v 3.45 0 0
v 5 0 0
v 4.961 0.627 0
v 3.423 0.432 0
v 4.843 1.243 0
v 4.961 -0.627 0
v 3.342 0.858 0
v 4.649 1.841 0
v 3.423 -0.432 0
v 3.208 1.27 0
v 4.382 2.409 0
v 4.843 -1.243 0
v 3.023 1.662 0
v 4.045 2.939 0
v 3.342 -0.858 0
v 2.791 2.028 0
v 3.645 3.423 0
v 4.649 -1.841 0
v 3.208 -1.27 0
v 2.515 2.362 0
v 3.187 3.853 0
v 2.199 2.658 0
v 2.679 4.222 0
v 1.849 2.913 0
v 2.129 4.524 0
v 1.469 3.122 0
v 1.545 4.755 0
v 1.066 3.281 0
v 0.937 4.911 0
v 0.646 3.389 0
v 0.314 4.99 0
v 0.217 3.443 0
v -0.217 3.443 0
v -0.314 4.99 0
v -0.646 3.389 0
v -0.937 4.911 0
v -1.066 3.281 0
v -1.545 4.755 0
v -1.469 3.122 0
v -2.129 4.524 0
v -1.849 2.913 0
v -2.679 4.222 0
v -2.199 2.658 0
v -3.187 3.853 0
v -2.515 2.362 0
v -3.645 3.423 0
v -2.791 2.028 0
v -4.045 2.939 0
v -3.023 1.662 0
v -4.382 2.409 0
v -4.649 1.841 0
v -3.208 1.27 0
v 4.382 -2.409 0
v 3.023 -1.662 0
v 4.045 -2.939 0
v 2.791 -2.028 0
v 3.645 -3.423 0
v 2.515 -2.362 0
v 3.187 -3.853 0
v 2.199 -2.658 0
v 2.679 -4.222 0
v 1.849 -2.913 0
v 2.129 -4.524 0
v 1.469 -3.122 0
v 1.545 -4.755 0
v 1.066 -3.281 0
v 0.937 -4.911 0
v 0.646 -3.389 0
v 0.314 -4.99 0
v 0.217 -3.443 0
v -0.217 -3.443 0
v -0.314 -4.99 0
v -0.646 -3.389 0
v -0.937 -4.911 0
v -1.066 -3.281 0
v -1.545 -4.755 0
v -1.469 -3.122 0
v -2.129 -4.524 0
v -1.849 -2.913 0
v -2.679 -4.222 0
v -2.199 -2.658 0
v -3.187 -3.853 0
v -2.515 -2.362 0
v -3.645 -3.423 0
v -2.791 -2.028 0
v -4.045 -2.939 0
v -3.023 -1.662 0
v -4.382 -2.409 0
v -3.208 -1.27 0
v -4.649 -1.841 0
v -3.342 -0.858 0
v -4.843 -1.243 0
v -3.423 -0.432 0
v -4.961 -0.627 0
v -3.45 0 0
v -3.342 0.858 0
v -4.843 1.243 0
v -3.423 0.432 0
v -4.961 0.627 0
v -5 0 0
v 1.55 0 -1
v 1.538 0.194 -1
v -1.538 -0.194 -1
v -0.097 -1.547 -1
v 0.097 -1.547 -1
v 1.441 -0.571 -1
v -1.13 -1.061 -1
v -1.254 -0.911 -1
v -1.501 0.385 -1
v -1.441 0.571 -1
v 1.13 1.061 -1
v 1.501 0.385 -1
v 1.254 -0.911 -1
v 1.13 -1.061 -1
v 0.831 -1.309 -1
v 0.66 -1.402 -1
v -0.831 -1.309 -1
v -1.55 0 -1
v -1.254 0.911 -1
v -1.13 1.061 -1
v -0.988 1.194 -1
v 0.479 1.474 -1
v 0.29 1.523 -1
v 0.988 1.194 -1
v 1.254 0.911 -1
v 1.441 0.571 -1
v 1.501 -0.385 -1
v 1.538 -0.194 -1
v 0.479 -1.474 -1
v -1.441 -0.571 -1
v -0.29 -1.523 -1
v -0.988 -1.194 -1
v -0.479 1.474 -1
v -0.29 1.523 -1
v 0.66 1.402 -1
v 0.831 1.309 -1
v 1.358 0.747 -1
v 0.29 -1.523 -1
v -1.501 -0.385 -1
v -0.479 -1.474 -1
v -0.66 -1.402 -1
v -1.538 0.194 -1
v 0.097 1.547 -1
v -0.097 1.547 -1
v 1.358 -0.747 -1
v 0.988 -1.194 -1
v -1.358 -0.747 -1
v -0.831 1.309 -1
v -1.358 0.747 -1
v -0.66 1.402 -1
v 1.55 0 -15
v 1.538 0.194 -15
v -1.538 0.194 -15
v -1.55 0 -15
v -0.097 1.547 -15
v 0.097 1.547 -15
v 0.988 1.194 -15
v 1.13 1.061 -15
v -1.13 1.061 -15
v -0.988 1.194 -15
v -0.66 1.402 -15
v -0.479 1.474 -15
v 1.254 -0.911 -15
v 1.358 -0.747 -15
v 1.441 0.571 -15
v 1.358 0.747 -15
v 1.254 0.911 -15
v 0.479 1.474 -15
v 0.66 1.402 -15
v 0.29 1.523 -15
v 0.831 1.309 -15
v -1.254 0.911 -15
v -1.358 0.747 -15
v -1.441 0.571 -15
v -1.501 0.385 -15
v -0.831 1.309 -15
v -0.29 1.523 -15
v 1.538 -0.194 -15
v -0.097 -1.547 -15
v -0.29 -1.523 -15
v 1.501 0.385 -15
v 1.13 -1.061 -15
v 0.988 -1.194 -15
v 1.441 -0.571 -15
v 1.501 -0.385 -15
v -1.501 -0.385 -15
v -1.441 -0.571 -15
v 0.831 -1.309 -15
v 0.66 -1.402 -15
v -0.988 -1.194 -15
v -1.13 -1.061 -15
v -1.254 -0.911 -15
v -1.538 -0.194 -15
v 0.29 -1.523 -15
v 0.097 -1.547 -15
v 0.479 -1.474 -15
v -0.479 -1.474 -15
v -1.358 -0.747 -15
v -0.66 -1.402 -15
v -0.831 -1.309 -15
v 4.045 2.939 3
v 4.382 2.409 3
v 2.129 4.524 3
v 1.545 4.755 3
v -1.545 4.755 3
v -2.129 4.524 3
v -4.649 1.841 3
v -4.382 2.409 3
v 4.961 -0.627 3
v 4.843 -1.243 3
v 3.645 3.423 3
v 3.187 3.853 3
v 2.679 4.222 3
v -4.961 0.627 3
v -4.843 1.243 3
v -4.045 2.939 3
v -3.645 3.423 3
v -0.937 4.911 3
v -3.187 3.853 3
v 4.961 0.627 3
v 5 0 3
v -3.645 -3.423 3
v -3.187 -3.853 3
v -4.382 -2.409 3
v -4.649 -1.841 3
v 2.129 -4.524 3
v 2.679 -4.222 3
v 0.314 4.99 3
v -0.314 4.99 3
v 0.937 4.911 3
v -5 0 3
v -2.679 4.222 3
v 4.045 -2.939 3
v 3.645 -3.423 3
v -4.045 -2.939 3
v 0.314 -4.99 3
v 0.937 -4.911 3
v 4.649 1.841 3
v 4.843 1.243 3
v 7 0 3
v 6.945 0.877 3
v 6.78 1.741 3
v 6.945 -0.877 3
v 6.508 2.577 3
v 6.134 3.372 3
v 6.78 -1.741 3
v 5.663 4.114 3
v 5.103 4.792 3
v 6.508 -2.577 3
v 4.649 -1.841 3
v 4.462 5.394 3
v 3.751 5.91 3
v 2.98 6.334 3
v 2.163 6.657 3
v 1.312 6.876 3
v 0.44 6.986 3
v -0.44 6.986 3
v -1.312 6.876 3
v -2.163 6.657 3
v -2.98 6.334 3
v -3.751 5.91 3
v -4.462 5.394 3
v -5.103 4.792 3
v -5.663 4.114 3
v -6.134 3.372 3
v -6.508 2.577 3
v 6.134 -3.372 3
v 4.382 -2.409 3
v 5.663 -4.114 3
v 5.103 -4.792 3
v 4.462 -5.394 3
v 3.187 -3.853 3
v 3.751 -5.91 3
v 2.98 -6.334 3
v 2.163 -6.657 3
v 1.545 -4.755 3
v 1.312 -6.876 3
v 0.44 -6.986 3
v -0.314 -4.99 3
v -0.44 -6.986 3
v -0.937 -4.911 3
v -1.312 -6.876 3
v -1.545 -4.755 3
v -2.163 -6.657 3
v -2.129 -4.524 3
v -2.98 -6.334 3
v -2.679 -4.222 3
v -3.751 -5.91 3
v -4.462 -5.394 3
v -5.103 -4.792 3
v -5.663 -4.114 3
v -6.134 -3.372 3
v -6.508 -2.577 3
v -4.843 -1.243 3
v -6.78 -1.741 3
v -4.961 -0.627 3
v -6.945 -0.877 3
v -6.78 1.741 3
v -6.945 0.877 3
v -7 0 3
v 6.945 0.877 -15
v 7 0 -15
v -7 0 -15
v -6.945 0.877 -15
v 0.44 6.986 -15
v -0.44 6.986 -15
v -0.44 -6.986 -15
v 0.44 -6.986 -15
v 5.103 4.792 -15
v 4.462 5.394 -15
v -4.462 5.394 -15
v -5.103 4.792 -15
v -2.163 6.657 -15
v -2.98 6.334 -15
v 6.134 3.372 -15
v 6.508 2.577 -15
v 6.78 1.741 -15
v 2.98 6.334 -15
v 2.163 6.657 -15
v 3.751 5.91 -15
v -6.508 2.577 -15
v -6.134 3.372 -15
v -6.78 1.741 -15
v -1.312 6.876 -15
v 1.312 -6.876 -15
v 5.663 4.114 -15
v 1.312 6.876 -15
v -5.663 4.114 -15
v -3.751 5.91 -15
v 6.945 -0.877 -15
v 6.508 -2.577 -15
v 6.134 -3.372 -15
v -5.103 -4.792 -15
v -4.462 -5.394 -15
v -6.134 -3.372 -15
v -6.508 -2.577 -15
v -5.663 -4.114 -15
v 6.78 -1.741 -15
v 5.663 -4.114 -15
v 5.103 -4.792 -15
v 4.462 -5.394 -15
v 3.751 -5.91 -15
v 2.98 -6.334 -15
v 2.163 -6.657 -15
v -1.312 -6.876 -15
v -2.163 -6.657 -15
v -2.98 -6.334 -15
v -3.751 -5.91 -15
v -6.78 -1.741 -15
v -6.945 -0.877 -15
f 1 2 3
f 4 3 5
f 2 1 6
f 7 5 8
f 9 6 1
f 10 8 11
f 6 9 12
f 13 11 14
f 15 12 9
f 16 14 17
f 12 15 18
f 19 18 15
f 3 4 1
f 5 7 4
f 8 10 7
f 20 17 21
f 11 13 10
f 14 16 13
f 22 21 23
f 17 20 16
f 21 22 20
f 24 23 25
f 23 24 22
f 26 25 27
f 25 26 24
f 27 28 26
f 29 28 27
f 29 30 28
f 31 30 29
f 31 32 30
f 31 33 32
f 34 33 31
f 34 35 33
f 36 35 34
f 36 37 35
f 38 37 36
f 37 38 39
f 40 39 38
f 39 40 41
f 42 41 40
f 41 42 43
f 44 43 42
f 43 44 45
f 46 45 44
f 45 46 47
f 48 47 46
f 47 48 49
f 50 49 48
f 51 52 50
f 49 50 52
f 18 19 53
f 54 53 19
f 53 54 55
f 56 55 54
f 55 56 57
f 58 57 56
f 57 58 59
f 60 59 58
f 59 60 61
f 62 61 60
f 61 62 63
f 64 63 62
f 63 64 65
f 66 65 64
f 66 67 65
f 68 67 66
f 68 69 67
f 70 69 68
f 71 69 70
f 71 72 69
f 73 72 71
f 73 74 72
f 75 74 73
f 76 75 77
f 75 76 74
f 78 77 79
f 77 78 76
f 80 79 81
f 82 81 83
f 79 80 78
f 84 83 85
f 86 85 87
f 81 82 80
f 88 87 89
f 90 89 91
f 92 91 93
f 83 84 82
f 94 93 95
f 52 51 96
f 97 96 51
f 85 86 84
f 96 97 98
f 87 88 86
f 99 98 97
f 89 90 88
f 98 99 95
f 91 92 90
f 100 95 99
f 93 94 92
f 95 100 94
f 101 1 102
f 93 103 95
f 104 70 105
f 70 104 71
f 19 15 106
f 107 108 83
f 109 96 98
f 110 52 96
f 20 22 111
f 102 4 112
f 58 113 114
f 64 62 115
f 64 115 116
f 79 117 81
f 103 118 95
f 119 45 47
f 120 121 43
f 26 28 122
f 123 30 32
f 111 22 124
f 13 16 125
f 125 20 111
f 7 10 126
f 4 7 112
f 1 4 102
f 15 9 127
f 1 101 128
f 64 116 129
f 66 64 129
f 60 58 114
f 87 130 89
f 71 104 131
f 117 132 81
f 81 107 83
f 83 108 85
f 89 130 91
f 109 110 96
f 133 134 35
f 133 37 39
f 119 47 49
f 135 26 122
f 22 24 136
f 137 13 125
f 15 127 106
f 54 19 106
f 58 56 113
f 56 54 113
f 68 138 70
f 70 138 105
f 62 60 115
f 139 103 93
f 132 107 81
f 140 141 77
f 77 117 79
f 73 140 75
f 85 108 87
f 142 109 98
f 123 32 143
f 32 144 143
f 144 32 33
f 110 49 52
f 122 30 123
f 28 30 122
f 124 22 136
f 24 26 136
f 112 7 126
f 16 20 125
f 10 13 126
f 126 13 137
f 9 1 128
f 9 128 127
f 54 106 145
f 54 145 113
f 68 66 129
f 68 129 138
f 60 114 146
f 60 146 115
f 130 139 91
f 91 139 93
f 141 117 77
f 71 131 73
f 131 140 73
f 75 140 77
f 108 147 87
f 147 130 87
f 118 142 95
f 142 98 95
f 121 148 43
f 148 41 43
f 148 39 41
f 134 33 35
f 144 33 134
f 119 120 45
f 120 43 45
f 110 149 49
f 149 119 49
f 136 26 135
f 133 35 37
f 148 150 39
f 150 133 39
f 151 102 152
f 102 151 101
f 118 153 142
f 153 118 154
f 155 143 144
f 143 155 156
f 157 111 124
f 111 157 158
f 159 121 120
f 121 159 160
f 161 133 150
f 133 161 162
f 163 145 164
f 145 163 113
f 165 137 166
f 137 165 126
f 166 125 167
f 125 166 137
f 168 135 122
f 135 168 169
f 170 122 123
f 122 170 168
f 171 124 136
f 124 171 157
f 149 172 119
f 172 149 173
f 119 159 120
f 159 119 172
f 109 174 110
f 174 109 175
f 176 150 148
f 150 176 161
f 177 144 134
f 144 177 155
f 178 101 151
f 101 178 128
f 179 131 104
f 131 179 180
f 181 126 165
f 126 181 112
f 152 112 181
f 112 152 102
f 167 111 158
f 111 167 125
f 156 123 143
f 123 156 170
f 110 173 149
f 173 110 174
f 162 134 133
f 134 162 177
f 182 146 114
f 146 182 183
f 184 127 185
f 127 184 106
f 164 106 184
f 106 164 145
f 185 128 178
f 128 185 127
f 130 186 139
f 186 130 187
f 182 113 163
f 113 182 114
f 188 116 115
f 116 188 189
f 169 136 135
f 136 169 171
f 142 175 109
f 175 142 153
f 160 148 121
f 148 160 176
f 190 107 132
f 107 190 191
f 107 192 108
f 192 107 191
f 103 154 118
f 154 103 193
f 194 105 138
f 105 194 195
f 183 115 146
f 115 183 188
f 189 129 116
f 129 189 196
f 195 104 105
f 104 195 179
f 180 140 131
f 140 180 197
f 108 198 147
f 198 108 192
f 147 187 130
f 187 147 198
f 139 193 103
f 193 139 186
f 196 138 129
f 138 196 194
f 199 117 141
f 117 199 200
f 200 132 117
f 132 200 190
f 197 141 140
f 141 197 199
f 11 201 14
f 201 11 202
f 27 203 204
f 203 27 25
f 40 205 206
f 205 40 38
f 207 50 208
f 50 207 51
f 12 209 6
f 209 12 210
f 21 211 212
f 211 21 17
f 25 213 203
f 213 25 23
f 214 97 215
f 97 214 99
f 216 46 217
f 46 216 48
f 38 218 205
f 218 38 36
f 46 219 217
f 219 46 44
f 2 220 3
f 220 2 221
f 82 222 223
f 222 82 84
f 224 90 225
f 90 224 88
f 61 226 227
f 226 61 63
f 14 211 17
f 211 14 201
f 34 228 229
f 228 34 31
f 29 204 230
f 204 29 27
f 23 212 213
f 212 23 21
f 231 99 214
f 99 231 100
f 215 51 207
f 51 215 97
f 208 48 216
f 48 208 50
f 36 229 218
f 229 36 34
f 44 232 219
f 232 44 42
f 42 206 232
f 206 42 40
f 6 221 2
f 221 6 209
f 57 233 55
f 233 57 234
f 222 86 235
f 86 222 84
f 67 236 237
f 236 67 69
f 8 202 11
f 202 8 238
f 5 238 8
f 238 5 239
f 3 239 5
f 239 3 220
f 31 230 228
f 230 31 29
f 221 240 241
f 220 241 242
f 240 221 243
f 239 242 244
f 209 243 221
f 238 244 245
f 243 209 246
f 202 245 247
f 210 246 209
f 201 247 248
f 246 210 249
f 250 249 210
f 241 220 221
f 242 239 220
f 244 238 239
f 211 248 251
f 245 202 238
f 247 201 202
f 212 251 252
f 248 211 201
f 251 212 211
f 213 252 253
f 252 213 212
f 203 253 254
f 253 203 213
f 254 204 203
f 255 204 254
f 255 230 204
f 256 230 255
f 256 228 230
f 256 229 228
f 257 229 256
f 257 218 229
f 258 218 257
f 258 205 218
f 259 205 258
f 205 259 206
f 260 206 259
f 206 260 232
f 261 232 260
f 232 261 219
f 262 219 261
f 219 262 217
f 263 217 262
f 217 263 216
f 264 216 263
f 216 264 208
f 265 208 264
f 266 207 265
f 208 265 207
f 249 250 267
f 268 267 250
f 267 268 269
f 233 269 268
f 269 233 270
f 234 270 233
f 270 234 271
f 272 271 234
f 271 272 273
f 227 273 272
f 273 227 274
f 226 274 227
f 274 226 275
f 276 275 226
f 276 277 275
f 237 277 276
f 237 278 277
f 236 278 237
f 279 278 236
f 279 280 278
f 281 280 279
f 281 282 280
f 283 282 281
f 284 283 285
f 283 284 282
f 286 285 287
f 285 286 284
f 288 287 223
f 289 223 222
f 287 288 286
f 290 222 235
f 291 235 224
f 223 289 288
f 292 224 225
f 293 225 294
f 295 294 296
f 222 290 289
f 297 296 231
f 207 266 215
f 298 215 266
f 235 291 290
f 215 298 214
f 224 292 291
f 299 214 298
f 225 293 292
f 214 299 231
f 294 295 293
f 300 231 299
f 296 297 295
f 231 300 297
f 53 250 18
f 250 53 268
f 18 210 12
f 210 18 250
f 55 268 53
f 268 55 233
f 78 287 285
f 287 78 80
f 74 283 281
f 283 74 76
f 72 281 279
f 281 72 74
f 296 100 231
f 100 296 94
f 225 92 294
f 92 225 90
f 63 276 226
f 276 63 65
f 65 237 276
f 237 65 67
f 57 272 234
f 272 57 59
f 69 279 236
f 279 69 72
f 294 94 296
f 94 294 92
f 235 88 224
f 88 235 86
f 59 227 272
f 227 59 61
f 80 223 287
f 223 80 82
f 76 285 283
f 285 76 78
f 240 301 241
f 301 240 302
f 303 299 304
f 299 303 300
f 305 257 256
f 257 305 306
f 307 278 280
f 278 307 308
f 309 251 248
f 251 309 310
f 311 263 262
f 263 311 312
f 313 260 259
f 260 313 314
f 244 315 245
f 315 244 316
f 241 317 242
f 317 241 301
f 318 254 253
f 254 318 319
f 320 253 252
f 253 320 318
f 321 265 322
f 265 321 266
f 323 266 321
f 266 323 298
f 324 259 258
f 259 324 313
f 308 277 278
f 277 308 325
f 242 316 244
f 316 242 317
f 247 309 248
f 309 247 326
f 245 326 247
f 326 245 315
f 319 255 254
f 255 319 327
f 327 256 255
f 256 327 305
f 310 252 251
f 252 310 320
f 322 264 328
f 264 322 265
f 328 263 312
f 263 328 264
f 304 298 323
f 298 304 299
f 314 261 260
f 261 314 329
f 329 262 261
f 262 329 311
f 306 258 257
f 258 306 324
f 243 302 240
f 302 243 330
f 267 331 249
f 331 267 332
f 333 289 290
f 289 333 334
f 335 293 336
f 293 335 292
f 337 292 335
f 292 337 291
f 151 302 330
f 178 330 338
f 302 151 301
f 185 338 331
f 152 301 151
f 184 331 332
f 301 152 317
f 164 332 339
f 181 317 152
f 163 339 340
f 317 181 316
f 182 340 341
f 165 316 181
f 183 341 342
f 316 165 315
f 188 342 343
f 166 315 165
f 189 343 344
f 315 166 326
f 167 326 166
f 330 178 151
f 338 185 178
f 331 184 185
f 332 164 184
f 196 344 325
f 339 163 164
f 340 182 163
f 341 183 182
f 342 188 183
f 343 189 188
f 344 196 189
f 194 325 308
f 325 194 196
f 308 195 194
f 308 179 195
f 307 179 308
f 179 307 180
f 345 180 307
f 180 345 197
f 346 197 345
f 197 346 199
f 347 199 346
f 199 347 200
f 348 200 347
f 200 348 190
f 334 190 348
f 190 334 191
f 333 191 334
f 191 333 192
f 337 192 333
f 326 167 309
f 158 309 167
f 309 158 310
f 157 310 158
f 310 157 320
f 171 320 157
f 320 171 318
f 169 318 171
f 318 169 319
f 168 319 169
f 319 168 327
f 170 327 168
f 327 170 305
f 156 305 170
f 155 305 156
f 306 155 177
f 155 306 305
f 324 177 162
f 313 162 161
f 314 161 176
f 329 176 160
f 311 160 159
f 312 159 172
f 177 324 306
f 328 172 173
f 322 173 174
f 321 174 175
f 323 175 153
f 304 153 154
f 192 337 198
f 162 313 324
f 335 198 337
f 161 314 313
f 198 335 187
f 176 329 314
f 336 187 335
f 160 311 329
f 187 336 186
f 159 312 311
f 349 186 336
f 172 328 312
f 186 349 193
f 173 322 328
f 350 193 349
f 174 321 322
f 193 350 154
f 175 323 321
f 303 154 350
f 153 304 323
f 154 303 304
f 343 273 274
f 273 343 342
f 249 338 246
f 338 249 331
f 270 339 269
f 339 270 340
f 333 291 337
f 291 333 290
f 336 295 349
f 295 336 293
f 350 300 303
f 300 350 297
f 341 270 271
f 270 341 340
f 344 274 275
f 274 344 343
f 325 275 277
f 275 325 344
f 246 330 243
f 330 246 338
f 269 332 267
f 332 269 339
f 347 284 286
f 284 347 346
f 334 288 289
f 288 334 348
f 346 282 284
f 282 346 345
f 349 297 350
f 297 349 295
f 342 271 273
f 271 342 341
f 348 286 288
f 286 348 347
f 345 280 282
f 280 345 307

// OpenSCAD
$fn = 50;

difference() {
	union() {
		translate(v = [0, 0, -15.0]) {
			cylinder(h = 18, r = 7.0);
		}
	}
	union() {
		translate(v = [0, 0, 0]) {
			rotate(a = [0, 0, 0]) {
				difference() {
					union() {
						translate(v = [0, 0, -18.0]) {
							cylinder(h = 18, r = 1.25);
						}
						translate(v = [0, 0, -1.0]) {
							cylinder(h = 1.0, r1 = 1.55, r2 = 3.45);
						}
						translate(v = [0, 0, -18.0]) {
							cylinder(h = 18, r = 1.55);
						}
						translate(v = [0, 0, -18.0]) {
							cylinder(h = 18, r = 1.25);
						}
					}
					union();
				}
			}
		}
		#cylinder(h = 3, r = 5.0);
	}
}
